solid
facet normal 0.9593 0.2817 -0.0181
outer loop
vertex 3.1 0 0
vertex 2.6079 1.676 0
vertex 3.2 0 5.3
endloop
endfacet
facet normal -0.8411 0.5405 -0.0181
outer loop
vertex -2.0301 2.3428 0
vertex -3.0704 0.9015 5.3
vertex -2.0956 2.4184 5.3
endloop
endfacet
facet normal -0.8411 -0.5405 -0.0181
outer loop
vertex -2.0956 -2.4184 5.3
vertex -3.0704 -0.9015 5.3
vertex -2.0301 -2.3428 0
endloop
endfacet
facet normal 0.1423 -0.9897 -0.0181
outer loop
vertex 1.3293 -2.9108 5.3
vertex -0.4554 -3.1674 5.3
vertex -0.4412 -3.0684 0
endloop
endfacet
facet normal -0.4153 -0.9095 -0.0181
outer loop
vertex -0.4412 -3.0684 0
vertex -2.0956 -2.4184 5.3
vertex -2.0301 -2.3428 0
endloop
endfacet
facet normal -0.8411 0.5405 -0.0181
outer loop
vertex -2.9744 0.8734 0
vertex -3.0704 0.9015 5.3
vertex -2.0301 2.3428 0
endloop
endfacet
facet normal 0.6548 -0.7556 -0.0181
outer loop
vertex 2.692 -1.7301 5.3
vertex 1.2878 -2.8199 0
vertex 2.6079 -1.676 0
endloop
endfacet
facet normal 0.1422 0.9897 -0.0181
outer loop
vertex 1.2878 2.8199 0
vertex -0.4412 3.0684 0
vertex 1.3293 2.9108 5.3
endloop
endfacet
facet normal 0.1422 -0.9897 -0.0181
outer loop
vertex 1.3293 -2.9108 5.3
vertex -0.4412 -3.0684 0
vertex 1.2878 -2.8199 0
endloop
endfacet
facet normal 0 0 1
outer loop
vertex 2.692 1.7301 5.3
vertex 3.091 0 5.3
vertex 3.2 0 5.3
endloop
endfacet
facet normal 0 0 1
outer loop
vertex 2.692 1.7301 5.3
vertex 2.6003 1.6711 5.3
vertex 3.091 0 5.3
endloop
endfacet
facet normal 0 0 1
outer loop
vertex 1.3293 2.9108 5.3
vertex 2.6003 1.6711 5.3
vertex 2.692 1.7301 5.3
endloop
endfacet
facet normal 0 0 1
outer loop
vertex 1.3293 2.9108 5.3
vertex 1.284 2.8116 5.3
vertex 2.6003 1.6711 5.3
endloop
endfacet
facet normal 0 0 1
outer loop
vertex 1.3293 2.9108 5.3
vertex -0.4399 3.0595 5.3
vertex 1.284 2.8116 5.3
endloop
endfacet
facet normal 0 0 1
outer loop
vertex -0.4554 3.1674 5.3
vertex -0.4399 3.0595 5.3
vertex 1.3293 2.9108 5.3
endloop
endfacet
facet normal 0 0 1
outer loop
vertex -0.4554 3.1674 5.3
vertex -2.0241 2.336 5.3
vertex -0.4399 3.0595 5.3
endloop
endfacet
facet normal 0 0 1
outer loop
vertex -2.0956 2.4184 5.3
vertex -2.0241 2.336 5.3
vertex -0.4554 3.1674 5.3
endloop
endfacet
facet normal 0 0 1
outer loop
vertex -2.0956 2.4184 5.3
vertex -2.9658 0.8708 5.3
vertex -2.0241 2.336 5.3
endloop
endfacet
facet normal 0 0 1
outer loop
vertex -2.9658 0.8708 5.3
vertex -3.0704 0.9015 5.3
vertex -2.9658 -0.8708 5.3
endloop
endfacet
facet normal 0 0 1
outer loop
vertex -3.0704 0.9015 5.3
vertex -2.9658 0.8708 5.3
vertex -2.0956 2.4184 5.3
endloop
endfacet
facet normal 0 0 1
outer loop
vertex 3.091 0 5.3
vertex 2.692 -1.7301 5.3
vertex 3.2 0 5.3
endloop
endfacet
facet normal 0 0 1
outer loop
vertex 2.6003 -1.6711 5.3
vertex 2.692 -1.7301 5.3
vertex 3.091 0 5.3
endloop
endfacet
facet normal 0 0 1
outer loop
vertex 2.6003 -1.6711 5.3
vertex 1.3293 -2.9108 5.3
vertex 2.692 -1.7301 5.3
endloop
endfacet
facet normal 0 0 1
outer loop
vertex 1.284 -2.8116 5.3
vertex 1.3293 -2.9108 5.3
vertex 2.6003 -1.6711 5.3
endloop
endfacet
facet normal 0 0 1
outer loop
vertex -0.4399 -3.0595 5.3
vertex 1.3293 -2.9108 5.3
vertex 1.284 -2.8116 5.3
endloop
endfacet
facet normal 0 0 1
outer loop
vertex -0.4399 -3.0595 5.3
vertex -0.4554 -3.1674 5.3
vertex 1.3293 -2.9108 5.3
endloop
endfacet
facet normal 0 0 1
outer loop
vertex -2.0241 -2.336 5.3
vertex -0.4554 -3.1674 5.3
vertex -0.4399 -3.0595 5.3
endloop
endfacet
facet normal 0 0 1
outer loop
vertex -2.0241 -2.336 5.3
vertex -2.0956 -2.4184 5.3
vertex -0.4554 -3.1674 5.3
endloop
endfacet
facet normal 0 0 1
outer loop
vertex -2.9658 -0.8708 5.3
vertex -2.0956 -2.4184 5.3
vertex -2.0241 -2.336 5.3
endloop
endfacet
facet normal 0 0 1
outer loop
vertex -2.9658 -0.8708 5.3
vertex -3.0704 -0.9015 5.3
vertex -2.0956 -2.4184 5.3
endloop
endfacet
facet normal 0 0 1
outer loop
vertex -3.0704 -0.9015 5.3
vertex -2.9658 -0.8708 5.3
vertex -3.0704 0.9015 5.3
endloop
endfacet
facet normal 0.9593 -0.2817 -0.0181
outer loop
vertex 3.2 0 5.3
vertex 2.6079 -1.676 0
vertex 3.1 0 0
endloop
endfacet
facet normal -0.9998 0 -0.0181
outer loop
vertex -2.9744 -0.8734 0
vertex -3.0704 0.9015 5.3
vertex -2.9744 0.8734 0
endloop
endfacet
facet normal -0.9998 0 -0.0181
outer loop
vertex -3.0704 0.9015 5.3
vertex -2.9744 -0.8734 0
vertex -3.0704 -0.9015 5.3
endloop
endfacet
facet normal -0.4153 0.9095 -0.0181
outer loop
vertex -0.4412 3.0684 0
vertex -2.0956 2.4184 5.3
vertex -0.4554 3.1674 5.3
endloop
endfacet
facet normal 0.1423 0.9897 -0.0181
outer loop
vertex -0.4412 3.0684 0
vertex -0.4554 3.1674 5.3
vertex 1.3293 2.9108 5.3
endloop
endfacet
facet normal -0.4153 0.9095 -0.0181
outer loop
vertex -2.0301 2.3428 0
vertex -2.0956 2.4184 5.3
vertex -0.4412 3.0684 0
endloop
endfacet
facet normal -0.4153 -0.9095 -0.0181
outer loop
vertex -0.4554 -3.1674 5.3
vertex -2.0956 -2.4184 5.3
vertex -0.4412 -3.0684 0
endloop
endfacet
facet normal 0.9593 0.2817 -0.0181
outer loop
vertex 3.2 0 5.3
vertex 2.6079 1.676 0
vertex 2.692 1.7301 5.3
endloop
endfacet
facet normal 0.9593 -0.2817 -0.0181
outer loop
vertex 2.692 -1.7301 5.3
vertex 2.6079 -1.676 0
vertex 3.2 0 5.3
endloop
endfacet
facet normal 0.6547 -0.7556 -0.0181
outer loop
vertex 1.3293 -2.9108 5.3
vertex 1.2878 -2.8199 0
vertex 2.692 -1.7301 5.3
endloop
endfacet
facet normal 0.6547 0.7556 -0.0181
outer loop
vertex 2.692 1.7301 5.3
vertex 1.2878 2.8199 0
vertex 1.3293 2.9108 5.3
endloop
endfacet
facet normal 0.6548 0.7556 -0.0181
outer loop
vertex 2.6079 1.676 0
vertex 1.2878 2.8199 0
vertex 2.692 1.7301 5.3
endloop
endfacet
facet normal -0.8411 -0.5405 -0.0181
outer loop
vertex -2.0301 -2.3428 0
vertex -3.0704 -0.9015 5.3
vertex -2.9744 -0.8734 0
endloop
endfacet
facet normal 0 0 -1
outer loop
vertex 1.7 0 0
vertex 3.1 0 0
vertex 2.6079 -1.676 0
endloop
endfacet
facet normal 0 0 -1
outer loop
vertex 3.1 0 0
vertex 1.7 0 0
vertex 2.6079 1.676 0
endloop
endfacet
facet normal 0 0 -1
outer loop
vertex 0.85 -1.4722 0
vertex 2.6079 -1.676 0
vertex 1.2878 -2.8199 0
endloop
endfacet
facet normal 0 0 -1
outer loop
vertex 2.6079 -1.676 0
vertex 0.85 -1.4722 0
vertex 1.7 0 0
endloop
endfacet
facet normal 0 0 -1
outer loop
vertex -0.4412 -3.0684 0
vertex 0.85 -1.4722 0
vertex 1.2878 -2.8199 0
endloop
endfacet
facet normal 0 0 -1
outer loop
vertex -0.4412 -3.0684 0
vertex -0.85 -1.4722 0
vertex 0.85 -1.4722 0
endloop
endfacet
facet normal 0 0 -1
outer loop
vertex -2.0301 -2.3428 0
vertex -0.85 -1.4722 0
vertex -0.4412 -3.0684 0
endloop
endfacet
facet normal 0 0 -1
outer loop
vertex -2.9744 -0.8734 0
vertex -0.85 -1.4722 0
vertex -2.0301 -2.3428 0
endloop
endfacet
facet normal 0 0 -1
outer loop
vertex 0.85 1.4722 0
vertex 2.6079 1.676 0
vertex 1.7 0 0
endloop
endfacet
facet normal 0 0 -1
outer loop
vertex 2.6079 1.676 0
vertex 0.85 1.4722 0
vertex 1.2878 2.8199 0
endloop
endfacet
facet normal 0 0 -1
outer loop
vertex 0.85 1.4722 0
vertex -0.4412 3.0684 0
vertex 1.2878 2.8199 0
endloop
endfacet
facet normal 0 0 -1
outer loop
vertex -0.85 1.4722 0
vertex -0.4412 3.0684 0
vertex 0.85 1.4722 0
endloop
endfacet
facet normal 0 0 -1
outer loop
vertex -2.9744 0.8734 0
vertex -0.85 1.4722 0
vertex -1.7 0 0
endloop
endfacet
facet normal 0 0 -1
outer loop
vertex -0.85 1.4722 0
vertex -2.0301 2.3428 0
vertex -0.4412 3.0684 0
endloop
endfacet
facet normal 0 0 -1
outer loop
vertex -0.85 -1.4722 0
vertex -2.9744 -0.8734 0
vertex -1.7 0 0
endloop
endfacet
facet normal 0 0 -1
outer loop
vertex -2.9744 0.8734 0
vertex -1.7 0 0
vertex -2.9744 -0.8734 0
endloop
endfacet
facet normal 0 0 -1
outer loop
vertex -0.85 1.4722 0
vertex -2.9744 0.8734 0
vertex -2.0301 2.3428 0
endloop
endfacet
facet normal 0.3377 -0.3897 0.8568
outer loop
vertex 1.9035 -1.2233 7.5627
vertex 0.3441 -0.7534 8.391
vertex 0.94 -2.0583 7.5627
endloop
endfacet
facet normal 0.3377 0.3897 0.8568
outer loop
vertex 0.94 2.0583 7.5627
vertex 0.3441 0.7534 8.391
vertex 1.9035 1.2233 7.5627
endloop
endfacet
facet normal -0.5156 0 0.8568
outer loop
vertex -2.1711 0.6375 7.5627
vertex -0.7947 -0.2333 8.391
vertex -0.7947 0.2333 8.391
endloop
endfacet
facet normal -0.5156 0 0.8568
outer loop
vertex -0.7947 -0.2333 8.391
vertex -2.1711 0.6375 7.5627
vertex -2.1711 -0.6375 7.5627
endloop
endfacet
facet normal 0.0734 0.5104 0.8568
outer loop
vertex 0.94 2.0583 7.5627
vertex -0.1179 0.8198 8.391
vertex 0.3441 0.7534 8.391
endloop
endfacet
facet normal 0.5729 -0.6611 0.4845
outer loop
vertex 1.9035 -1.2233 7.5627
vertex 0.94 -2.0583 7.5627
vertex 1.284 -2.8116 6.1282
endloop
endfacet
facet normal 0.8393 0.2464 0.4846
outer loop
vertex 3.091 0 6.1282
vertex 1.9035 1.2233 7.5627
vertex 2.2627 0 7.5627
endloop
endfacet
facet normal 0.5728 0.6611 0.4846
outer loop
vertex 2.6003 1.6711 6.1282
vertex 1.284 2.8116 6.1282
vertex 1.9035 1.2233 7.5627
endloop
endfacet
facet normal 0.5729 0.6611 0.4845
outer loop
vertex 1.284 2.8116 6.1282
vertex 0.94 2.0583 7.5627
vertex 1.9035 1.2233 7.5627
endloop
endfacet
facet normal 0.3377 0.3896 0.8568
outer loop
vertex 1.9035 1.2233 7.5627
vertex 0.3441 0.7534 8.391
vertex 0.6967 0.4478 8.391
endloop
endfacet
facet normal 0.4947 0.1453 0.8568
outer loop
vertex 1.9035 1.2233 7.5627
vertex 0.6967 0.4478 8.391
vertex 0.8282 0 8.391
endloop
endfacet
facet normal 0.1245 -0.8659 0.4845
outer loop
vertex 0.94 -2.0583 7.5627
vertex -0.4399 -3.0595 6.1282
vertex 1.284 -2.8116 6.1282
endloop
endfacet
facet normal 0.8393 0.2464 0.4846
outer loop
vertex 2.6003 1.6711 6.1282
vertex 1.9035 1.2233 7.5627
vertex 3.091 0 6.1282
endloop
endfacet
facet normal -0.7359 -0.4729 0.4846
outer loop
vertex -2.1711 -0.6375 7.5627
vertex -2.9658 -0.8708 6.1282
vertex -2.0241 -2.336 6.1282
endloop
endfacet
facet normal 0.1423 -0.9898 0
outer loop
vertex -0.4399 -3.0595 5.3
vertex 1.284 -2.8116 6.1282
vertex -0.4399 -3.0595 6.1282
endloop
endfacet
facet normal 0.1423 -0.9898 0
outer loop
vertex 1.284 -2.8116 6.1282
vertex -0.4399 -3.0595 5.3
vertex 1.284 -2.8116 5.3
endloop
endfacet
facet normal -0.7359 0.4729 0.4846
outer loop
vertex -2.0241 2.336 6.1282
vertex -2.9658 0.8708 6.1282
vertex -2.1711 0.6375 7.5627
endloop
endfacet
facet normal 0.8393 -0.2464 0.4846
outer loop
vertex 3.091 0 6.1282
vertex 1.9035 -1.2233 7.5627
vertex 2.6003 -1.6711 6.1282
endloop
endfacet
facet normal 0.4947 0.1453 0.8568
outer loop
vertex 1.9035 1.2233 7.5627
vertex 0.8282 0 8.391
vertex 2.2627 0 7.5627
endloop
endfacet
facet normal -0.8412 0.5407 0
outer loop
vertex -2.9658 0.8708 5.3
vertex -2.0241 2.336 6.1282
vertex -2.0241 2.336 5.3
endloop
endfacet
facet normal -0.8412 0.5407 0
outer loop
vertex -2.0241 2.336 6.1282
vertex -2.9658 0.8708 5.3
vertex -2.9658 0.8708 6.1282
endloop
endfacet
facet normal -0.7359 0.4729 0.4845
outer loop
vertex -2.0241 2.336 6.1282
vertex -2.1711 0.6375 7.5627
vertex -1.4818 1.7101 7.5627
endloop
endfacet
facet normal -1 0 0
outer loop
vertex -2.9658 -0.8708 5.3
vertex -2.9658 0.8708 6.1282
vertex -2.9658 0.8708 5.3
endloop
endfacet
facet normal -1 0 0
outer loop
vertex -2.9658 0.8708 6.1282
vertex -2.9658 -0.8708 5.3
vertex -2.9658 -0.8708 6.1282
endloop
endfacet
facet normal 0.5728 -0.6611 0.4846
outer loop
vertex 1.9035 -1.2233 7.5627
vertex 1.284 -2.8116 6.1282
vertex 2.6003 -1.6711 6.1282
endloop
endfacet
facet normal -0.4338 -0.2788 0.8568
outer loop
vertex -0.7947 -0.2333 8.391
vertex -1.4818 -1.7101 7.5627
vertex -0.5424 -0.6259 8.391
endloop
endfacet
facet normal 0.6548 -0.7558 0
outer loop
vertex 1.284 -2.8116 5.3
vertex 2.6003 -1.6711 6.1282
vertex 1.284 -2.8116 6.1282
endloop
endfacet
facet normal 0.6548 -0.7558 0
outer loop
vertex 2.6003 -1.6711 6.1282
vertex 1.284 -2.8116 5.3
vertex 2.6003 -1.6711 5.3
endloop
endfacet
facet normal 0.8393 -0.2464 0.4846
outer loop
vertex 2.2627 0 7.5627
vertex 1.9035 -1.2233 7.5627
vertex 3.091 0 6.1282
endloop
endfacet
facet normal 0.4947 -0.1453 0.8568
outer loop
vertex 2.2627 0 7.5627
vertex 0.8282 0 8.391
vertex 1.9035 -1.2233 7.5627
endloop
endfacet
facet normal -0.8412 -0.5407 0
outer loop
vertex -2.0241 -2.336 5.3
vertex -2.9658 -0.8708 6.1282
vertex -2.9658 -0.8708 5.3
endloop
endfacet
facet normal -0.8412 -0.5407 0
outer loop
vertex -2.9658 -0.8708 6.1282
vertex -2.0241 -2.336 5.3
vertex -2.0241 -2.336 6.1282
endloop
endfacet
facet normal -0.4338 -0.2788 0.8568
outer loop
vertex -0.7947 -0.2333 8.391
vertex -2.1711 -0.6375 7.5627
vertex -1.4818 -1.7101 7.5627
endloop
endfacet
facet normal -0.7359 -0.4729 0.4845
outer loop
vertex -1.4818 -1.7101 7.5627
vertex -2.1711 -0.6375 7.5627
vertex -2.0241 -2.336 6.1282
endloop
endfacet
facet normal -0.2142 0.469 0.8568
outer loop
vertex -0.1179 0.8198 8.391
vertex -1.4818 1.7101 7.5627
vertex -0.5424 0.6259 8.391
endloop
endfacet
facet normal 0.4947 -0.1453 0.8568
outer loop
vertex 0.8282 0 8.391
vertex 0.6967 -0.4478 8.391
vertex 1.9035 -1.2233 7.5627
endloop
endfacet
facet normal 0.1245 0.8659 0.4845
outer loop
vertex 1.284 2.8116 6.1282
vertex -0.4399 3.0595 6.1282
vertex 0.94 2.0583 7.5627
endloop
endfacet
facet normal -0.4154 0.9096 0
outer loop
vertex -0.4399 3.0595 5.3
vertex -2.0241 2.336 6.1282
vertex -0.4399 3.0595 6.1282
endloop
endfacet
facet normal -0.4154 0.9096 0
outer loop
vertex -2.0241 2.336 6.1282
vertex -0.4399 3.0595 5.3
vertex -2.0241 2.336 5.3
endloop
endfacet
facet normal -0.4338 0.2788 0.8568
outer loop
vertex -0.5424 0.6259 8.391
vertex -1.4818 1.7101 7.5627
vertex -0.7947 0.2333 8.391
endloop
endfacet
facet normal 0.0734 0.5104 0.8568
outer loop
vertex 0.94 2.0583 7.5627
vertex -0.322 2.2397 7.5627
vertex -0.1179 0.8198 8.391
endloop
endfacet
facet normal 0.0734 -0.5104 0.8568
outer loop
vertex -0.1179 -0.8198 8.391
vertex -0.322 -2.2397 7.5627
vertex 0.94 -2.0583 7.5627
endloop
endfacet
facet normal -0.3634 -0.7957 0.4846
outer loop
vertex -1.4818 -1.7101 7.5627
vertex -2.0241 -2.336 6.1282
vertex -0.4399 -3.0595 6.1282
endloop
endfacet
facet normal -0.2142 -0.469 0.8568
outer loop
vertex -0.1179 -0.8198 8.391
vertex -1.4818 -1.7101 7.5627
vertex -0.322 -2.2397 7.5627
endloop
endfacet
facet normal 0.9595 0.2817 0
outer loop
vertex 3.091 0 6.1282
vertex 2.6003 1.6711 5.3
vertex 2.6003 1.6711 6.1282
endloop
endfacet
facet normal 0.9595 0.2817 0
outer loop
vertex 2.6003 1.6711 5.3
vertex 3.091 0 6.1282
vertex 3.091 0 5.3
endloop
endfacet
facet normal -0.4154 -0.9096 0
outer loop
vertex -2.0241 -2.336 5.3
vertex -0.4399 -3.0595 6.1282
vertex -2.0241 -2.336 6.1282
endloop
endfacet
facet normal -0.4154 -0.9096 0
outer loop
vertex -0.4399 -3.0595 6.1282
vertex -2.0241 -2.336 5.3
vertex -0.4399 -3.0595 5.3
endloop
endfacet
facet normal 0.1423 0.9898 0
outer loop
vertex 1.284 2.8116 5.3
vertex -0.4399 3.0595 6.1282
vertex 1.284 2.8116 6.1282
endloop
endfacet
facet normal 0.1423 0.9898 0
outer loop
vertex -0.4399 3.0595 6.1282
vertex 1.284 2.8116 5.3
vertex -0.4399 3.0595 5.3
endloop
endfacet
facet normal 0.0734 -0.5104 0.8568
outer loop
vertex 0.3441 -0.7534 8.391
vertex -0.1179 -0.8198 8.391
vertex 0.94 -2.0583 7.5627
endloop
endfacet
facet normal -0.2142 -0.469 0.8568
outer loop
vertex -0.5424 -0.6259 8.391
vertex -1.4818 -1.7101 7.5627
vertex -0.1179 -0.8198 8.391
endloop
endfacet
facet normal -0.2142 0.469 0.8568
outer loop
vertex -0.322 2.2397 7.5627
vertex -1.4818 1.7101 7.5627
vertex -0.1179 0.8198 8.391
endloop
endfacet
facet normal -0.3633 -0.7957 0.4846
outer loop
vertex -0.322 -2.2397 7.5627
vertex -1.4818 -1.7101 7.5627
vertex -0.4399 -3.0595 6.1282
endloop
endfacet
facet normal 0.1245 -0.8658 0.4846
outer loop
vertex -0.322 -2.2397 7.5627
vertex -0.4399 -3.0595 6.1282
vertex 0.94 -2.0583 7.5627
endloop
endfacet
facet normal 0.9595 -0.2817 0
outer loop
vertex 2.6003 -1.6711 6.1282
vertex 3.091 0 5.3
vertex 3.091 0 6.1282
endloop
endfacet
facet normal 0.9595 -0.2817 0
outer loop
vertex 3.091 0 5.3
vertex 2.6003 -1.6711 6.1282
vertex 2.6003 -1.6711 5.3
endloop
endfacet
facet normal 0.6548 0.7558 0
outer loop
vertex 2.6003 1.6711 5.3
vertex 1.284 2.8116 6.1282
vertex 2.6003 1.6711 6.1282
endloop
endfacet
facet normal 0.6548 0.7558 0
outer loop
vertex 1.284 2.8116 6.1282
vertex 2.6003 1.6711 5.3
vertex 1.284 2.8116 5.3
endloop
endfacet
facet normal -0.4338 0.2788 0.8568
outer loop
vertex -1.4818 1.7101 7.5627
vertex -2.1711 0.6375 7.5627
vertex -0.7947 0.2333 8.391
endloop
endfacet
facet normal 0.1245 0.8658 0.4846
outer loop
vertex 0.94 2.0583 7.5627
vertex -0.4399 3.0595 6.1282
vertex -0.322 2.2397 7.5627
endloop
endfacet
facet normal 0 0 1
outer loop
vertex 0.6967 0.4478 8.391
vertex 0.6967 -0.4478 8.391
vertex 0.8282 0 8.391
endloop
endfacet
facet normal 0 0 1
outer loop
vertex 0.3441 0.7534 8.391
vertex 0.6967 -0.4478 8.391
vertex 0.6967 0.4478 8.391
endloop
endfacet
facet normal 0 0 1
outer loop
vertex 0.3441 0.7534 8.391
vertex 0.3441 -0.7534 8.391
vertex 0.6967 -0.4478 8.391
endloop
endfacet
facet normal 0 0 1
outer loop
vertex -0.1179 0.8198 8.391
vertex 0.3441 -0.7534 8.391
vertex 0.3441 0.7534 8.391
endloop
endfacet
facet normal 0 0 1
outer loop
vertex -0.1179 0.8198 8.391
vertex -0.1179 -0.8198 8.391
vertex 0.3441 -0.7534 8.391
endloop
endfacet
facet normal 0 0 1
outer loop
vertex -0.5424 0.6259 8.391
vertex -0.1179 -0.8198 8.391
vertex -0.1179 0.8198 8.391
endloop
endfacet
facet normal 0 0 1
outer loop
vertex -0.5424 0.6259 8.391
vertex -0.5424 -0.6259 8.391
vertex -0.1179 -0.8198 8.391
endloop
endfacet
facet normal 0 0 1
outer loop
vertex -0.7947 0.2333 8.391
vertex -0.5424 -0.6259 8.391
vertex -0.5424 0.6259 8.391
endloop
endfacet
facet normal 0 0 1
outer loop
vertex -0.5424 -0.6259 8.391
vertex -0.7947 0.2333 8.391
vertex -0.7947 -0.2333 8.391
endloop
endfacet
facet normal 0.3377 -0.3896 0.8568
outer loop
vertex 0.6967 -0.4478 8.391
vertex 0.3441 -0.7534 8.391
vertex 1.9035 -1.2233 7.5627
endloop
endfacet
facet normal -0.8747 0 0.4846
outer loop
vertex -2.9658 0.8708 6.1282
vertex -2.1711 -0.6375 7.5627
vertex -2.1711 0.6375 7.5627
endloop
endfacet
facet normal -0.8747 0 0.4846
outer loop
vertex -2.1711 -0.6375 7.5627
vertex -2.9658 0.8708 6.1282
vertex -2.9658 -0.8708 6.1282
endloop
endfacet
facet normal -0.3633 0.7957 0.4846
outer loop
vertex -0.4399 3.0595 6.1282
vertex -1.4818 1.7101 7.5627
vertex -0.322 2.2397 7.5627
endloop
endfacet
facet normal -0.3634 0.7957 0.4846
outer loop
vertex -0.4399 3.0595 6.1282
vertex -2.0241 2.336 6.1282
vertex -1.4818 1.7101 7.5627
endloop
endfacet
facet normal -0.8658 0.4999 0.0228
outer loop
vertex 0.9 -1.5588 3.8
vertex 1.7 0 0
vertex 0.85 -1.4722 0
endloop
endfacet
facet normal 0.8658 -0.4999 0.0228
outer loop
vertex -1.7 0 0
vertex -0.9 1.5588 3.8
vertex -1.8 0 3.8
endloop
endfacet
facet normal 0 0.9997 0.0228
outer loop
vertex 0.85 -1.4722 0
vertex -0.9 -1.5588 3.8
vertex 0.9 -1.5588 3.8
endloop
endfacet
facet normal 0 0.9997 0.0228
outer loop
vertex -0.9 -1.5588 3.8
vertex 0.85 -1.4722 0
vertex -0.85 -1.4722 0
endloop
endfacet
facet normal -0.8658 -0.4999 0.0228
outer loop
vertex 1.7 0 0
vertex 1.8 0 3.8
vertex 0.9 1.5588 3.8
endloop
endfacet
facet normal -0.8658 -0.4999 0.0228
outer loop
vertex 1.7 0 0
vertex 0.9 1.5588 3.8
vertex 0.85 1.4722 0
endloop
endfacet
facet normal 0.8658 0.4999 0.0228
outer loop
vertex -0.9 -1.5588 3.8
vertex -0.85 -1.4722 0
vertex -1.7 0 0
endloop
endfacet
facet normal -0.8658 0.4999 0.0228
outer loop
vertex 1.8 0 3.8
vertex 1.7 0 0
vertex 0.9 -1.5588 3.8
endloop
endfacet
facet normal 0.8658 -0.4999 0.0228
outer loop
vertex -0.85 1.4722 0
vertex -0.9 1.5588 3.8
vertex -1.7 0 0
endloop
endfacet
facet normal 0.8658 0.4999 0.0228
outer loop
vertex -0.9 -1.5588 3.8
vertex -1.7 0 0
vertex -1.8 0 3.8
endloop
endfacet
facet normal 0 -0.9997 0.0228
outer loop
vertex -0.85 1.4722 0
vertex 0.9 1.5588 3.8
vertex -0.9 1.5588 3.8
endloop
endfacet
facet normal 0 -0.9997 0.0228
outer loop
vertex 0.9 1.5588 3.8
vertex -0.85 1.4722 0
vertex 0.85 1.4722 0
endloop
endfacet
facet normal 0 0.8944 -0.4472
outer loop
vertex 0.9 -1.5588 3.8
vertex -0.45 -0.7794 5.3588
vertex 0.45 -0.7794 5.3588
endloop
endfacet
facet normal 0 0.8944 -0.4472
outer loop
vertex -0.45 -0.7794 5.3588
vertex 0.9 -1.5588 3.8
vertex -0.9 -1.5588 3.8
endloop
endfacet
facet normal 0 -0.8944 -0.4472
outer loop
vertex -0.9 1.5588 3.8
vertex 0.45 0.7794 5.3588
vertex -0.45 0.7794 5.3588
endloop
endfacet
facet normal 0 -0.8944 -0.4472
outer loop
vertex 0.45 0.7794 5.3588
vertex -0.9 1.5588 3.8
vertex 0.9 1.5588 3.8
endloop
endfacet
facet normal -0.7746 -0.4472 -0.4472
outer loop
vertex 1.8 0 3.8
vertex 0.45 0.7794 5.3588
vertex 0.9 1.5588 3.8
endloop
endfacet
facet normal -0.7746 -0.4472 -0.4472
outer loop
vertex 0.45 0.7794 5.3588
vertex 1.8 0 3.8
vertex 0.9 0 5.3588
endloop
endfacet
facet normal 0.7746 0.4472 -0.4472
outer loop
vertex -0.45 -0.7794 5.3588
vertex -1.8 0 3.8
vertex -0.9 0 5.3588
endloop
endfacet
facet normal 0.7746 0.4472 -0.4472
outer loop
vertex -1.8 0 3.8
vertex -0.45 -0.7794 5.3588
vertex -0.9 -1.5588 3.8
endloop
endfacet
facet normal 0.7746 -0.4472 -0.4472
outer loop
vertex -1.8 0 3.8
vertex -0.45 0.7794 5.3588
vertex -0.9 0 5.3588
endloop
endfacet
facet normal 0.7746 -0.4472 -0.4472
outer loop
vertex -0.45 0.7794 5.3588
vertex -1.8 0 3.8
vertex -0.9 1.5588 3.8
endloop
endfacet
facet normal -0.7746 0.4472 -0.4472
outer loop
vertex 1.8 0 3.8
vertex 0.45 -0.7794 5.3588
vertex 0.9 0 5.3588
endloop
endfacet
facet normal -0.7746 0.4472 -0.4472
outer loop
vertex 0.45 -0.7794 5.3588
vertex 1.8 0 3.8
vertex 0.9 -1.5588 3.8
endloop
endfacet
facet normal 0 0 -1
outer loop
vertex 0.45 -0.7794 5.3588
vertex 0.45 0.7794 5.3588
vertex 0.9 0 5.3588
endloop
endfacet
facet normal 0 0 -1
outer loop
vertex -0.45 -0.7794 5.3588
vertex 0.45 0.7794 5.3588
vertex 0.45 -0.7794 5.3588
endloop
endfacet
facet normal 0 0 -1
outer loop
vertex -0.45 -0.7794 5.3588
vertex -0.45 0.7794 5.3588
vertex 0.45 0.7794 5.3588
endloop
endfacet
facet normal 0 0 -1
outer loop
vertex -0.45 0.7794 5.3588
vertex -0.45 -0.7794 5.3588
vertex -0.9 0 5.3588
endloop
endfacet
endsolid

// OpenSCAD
difference () {
    union () {
        translate ([0, 0, 2.65]) {
            union () {
                cylinder (h=5.3, r1=3.1, r2=3.2, center=true);
                translate ([0, 0, 2.65]) {
                    sphere (r=3.2);
                }
            }
        }
    }
    translate ([0, 0, 0]) {
        union () {
            translate ([0, 0, 1.9]) {
                union () {
                    cylinder (h=3.8, r1=1.7, r2=1.8, center=true);
                    translate ([0, 0, 1.9]) {
                        sphere (r=1.8);
                    }
                }
            }
        }
    }
}
  
